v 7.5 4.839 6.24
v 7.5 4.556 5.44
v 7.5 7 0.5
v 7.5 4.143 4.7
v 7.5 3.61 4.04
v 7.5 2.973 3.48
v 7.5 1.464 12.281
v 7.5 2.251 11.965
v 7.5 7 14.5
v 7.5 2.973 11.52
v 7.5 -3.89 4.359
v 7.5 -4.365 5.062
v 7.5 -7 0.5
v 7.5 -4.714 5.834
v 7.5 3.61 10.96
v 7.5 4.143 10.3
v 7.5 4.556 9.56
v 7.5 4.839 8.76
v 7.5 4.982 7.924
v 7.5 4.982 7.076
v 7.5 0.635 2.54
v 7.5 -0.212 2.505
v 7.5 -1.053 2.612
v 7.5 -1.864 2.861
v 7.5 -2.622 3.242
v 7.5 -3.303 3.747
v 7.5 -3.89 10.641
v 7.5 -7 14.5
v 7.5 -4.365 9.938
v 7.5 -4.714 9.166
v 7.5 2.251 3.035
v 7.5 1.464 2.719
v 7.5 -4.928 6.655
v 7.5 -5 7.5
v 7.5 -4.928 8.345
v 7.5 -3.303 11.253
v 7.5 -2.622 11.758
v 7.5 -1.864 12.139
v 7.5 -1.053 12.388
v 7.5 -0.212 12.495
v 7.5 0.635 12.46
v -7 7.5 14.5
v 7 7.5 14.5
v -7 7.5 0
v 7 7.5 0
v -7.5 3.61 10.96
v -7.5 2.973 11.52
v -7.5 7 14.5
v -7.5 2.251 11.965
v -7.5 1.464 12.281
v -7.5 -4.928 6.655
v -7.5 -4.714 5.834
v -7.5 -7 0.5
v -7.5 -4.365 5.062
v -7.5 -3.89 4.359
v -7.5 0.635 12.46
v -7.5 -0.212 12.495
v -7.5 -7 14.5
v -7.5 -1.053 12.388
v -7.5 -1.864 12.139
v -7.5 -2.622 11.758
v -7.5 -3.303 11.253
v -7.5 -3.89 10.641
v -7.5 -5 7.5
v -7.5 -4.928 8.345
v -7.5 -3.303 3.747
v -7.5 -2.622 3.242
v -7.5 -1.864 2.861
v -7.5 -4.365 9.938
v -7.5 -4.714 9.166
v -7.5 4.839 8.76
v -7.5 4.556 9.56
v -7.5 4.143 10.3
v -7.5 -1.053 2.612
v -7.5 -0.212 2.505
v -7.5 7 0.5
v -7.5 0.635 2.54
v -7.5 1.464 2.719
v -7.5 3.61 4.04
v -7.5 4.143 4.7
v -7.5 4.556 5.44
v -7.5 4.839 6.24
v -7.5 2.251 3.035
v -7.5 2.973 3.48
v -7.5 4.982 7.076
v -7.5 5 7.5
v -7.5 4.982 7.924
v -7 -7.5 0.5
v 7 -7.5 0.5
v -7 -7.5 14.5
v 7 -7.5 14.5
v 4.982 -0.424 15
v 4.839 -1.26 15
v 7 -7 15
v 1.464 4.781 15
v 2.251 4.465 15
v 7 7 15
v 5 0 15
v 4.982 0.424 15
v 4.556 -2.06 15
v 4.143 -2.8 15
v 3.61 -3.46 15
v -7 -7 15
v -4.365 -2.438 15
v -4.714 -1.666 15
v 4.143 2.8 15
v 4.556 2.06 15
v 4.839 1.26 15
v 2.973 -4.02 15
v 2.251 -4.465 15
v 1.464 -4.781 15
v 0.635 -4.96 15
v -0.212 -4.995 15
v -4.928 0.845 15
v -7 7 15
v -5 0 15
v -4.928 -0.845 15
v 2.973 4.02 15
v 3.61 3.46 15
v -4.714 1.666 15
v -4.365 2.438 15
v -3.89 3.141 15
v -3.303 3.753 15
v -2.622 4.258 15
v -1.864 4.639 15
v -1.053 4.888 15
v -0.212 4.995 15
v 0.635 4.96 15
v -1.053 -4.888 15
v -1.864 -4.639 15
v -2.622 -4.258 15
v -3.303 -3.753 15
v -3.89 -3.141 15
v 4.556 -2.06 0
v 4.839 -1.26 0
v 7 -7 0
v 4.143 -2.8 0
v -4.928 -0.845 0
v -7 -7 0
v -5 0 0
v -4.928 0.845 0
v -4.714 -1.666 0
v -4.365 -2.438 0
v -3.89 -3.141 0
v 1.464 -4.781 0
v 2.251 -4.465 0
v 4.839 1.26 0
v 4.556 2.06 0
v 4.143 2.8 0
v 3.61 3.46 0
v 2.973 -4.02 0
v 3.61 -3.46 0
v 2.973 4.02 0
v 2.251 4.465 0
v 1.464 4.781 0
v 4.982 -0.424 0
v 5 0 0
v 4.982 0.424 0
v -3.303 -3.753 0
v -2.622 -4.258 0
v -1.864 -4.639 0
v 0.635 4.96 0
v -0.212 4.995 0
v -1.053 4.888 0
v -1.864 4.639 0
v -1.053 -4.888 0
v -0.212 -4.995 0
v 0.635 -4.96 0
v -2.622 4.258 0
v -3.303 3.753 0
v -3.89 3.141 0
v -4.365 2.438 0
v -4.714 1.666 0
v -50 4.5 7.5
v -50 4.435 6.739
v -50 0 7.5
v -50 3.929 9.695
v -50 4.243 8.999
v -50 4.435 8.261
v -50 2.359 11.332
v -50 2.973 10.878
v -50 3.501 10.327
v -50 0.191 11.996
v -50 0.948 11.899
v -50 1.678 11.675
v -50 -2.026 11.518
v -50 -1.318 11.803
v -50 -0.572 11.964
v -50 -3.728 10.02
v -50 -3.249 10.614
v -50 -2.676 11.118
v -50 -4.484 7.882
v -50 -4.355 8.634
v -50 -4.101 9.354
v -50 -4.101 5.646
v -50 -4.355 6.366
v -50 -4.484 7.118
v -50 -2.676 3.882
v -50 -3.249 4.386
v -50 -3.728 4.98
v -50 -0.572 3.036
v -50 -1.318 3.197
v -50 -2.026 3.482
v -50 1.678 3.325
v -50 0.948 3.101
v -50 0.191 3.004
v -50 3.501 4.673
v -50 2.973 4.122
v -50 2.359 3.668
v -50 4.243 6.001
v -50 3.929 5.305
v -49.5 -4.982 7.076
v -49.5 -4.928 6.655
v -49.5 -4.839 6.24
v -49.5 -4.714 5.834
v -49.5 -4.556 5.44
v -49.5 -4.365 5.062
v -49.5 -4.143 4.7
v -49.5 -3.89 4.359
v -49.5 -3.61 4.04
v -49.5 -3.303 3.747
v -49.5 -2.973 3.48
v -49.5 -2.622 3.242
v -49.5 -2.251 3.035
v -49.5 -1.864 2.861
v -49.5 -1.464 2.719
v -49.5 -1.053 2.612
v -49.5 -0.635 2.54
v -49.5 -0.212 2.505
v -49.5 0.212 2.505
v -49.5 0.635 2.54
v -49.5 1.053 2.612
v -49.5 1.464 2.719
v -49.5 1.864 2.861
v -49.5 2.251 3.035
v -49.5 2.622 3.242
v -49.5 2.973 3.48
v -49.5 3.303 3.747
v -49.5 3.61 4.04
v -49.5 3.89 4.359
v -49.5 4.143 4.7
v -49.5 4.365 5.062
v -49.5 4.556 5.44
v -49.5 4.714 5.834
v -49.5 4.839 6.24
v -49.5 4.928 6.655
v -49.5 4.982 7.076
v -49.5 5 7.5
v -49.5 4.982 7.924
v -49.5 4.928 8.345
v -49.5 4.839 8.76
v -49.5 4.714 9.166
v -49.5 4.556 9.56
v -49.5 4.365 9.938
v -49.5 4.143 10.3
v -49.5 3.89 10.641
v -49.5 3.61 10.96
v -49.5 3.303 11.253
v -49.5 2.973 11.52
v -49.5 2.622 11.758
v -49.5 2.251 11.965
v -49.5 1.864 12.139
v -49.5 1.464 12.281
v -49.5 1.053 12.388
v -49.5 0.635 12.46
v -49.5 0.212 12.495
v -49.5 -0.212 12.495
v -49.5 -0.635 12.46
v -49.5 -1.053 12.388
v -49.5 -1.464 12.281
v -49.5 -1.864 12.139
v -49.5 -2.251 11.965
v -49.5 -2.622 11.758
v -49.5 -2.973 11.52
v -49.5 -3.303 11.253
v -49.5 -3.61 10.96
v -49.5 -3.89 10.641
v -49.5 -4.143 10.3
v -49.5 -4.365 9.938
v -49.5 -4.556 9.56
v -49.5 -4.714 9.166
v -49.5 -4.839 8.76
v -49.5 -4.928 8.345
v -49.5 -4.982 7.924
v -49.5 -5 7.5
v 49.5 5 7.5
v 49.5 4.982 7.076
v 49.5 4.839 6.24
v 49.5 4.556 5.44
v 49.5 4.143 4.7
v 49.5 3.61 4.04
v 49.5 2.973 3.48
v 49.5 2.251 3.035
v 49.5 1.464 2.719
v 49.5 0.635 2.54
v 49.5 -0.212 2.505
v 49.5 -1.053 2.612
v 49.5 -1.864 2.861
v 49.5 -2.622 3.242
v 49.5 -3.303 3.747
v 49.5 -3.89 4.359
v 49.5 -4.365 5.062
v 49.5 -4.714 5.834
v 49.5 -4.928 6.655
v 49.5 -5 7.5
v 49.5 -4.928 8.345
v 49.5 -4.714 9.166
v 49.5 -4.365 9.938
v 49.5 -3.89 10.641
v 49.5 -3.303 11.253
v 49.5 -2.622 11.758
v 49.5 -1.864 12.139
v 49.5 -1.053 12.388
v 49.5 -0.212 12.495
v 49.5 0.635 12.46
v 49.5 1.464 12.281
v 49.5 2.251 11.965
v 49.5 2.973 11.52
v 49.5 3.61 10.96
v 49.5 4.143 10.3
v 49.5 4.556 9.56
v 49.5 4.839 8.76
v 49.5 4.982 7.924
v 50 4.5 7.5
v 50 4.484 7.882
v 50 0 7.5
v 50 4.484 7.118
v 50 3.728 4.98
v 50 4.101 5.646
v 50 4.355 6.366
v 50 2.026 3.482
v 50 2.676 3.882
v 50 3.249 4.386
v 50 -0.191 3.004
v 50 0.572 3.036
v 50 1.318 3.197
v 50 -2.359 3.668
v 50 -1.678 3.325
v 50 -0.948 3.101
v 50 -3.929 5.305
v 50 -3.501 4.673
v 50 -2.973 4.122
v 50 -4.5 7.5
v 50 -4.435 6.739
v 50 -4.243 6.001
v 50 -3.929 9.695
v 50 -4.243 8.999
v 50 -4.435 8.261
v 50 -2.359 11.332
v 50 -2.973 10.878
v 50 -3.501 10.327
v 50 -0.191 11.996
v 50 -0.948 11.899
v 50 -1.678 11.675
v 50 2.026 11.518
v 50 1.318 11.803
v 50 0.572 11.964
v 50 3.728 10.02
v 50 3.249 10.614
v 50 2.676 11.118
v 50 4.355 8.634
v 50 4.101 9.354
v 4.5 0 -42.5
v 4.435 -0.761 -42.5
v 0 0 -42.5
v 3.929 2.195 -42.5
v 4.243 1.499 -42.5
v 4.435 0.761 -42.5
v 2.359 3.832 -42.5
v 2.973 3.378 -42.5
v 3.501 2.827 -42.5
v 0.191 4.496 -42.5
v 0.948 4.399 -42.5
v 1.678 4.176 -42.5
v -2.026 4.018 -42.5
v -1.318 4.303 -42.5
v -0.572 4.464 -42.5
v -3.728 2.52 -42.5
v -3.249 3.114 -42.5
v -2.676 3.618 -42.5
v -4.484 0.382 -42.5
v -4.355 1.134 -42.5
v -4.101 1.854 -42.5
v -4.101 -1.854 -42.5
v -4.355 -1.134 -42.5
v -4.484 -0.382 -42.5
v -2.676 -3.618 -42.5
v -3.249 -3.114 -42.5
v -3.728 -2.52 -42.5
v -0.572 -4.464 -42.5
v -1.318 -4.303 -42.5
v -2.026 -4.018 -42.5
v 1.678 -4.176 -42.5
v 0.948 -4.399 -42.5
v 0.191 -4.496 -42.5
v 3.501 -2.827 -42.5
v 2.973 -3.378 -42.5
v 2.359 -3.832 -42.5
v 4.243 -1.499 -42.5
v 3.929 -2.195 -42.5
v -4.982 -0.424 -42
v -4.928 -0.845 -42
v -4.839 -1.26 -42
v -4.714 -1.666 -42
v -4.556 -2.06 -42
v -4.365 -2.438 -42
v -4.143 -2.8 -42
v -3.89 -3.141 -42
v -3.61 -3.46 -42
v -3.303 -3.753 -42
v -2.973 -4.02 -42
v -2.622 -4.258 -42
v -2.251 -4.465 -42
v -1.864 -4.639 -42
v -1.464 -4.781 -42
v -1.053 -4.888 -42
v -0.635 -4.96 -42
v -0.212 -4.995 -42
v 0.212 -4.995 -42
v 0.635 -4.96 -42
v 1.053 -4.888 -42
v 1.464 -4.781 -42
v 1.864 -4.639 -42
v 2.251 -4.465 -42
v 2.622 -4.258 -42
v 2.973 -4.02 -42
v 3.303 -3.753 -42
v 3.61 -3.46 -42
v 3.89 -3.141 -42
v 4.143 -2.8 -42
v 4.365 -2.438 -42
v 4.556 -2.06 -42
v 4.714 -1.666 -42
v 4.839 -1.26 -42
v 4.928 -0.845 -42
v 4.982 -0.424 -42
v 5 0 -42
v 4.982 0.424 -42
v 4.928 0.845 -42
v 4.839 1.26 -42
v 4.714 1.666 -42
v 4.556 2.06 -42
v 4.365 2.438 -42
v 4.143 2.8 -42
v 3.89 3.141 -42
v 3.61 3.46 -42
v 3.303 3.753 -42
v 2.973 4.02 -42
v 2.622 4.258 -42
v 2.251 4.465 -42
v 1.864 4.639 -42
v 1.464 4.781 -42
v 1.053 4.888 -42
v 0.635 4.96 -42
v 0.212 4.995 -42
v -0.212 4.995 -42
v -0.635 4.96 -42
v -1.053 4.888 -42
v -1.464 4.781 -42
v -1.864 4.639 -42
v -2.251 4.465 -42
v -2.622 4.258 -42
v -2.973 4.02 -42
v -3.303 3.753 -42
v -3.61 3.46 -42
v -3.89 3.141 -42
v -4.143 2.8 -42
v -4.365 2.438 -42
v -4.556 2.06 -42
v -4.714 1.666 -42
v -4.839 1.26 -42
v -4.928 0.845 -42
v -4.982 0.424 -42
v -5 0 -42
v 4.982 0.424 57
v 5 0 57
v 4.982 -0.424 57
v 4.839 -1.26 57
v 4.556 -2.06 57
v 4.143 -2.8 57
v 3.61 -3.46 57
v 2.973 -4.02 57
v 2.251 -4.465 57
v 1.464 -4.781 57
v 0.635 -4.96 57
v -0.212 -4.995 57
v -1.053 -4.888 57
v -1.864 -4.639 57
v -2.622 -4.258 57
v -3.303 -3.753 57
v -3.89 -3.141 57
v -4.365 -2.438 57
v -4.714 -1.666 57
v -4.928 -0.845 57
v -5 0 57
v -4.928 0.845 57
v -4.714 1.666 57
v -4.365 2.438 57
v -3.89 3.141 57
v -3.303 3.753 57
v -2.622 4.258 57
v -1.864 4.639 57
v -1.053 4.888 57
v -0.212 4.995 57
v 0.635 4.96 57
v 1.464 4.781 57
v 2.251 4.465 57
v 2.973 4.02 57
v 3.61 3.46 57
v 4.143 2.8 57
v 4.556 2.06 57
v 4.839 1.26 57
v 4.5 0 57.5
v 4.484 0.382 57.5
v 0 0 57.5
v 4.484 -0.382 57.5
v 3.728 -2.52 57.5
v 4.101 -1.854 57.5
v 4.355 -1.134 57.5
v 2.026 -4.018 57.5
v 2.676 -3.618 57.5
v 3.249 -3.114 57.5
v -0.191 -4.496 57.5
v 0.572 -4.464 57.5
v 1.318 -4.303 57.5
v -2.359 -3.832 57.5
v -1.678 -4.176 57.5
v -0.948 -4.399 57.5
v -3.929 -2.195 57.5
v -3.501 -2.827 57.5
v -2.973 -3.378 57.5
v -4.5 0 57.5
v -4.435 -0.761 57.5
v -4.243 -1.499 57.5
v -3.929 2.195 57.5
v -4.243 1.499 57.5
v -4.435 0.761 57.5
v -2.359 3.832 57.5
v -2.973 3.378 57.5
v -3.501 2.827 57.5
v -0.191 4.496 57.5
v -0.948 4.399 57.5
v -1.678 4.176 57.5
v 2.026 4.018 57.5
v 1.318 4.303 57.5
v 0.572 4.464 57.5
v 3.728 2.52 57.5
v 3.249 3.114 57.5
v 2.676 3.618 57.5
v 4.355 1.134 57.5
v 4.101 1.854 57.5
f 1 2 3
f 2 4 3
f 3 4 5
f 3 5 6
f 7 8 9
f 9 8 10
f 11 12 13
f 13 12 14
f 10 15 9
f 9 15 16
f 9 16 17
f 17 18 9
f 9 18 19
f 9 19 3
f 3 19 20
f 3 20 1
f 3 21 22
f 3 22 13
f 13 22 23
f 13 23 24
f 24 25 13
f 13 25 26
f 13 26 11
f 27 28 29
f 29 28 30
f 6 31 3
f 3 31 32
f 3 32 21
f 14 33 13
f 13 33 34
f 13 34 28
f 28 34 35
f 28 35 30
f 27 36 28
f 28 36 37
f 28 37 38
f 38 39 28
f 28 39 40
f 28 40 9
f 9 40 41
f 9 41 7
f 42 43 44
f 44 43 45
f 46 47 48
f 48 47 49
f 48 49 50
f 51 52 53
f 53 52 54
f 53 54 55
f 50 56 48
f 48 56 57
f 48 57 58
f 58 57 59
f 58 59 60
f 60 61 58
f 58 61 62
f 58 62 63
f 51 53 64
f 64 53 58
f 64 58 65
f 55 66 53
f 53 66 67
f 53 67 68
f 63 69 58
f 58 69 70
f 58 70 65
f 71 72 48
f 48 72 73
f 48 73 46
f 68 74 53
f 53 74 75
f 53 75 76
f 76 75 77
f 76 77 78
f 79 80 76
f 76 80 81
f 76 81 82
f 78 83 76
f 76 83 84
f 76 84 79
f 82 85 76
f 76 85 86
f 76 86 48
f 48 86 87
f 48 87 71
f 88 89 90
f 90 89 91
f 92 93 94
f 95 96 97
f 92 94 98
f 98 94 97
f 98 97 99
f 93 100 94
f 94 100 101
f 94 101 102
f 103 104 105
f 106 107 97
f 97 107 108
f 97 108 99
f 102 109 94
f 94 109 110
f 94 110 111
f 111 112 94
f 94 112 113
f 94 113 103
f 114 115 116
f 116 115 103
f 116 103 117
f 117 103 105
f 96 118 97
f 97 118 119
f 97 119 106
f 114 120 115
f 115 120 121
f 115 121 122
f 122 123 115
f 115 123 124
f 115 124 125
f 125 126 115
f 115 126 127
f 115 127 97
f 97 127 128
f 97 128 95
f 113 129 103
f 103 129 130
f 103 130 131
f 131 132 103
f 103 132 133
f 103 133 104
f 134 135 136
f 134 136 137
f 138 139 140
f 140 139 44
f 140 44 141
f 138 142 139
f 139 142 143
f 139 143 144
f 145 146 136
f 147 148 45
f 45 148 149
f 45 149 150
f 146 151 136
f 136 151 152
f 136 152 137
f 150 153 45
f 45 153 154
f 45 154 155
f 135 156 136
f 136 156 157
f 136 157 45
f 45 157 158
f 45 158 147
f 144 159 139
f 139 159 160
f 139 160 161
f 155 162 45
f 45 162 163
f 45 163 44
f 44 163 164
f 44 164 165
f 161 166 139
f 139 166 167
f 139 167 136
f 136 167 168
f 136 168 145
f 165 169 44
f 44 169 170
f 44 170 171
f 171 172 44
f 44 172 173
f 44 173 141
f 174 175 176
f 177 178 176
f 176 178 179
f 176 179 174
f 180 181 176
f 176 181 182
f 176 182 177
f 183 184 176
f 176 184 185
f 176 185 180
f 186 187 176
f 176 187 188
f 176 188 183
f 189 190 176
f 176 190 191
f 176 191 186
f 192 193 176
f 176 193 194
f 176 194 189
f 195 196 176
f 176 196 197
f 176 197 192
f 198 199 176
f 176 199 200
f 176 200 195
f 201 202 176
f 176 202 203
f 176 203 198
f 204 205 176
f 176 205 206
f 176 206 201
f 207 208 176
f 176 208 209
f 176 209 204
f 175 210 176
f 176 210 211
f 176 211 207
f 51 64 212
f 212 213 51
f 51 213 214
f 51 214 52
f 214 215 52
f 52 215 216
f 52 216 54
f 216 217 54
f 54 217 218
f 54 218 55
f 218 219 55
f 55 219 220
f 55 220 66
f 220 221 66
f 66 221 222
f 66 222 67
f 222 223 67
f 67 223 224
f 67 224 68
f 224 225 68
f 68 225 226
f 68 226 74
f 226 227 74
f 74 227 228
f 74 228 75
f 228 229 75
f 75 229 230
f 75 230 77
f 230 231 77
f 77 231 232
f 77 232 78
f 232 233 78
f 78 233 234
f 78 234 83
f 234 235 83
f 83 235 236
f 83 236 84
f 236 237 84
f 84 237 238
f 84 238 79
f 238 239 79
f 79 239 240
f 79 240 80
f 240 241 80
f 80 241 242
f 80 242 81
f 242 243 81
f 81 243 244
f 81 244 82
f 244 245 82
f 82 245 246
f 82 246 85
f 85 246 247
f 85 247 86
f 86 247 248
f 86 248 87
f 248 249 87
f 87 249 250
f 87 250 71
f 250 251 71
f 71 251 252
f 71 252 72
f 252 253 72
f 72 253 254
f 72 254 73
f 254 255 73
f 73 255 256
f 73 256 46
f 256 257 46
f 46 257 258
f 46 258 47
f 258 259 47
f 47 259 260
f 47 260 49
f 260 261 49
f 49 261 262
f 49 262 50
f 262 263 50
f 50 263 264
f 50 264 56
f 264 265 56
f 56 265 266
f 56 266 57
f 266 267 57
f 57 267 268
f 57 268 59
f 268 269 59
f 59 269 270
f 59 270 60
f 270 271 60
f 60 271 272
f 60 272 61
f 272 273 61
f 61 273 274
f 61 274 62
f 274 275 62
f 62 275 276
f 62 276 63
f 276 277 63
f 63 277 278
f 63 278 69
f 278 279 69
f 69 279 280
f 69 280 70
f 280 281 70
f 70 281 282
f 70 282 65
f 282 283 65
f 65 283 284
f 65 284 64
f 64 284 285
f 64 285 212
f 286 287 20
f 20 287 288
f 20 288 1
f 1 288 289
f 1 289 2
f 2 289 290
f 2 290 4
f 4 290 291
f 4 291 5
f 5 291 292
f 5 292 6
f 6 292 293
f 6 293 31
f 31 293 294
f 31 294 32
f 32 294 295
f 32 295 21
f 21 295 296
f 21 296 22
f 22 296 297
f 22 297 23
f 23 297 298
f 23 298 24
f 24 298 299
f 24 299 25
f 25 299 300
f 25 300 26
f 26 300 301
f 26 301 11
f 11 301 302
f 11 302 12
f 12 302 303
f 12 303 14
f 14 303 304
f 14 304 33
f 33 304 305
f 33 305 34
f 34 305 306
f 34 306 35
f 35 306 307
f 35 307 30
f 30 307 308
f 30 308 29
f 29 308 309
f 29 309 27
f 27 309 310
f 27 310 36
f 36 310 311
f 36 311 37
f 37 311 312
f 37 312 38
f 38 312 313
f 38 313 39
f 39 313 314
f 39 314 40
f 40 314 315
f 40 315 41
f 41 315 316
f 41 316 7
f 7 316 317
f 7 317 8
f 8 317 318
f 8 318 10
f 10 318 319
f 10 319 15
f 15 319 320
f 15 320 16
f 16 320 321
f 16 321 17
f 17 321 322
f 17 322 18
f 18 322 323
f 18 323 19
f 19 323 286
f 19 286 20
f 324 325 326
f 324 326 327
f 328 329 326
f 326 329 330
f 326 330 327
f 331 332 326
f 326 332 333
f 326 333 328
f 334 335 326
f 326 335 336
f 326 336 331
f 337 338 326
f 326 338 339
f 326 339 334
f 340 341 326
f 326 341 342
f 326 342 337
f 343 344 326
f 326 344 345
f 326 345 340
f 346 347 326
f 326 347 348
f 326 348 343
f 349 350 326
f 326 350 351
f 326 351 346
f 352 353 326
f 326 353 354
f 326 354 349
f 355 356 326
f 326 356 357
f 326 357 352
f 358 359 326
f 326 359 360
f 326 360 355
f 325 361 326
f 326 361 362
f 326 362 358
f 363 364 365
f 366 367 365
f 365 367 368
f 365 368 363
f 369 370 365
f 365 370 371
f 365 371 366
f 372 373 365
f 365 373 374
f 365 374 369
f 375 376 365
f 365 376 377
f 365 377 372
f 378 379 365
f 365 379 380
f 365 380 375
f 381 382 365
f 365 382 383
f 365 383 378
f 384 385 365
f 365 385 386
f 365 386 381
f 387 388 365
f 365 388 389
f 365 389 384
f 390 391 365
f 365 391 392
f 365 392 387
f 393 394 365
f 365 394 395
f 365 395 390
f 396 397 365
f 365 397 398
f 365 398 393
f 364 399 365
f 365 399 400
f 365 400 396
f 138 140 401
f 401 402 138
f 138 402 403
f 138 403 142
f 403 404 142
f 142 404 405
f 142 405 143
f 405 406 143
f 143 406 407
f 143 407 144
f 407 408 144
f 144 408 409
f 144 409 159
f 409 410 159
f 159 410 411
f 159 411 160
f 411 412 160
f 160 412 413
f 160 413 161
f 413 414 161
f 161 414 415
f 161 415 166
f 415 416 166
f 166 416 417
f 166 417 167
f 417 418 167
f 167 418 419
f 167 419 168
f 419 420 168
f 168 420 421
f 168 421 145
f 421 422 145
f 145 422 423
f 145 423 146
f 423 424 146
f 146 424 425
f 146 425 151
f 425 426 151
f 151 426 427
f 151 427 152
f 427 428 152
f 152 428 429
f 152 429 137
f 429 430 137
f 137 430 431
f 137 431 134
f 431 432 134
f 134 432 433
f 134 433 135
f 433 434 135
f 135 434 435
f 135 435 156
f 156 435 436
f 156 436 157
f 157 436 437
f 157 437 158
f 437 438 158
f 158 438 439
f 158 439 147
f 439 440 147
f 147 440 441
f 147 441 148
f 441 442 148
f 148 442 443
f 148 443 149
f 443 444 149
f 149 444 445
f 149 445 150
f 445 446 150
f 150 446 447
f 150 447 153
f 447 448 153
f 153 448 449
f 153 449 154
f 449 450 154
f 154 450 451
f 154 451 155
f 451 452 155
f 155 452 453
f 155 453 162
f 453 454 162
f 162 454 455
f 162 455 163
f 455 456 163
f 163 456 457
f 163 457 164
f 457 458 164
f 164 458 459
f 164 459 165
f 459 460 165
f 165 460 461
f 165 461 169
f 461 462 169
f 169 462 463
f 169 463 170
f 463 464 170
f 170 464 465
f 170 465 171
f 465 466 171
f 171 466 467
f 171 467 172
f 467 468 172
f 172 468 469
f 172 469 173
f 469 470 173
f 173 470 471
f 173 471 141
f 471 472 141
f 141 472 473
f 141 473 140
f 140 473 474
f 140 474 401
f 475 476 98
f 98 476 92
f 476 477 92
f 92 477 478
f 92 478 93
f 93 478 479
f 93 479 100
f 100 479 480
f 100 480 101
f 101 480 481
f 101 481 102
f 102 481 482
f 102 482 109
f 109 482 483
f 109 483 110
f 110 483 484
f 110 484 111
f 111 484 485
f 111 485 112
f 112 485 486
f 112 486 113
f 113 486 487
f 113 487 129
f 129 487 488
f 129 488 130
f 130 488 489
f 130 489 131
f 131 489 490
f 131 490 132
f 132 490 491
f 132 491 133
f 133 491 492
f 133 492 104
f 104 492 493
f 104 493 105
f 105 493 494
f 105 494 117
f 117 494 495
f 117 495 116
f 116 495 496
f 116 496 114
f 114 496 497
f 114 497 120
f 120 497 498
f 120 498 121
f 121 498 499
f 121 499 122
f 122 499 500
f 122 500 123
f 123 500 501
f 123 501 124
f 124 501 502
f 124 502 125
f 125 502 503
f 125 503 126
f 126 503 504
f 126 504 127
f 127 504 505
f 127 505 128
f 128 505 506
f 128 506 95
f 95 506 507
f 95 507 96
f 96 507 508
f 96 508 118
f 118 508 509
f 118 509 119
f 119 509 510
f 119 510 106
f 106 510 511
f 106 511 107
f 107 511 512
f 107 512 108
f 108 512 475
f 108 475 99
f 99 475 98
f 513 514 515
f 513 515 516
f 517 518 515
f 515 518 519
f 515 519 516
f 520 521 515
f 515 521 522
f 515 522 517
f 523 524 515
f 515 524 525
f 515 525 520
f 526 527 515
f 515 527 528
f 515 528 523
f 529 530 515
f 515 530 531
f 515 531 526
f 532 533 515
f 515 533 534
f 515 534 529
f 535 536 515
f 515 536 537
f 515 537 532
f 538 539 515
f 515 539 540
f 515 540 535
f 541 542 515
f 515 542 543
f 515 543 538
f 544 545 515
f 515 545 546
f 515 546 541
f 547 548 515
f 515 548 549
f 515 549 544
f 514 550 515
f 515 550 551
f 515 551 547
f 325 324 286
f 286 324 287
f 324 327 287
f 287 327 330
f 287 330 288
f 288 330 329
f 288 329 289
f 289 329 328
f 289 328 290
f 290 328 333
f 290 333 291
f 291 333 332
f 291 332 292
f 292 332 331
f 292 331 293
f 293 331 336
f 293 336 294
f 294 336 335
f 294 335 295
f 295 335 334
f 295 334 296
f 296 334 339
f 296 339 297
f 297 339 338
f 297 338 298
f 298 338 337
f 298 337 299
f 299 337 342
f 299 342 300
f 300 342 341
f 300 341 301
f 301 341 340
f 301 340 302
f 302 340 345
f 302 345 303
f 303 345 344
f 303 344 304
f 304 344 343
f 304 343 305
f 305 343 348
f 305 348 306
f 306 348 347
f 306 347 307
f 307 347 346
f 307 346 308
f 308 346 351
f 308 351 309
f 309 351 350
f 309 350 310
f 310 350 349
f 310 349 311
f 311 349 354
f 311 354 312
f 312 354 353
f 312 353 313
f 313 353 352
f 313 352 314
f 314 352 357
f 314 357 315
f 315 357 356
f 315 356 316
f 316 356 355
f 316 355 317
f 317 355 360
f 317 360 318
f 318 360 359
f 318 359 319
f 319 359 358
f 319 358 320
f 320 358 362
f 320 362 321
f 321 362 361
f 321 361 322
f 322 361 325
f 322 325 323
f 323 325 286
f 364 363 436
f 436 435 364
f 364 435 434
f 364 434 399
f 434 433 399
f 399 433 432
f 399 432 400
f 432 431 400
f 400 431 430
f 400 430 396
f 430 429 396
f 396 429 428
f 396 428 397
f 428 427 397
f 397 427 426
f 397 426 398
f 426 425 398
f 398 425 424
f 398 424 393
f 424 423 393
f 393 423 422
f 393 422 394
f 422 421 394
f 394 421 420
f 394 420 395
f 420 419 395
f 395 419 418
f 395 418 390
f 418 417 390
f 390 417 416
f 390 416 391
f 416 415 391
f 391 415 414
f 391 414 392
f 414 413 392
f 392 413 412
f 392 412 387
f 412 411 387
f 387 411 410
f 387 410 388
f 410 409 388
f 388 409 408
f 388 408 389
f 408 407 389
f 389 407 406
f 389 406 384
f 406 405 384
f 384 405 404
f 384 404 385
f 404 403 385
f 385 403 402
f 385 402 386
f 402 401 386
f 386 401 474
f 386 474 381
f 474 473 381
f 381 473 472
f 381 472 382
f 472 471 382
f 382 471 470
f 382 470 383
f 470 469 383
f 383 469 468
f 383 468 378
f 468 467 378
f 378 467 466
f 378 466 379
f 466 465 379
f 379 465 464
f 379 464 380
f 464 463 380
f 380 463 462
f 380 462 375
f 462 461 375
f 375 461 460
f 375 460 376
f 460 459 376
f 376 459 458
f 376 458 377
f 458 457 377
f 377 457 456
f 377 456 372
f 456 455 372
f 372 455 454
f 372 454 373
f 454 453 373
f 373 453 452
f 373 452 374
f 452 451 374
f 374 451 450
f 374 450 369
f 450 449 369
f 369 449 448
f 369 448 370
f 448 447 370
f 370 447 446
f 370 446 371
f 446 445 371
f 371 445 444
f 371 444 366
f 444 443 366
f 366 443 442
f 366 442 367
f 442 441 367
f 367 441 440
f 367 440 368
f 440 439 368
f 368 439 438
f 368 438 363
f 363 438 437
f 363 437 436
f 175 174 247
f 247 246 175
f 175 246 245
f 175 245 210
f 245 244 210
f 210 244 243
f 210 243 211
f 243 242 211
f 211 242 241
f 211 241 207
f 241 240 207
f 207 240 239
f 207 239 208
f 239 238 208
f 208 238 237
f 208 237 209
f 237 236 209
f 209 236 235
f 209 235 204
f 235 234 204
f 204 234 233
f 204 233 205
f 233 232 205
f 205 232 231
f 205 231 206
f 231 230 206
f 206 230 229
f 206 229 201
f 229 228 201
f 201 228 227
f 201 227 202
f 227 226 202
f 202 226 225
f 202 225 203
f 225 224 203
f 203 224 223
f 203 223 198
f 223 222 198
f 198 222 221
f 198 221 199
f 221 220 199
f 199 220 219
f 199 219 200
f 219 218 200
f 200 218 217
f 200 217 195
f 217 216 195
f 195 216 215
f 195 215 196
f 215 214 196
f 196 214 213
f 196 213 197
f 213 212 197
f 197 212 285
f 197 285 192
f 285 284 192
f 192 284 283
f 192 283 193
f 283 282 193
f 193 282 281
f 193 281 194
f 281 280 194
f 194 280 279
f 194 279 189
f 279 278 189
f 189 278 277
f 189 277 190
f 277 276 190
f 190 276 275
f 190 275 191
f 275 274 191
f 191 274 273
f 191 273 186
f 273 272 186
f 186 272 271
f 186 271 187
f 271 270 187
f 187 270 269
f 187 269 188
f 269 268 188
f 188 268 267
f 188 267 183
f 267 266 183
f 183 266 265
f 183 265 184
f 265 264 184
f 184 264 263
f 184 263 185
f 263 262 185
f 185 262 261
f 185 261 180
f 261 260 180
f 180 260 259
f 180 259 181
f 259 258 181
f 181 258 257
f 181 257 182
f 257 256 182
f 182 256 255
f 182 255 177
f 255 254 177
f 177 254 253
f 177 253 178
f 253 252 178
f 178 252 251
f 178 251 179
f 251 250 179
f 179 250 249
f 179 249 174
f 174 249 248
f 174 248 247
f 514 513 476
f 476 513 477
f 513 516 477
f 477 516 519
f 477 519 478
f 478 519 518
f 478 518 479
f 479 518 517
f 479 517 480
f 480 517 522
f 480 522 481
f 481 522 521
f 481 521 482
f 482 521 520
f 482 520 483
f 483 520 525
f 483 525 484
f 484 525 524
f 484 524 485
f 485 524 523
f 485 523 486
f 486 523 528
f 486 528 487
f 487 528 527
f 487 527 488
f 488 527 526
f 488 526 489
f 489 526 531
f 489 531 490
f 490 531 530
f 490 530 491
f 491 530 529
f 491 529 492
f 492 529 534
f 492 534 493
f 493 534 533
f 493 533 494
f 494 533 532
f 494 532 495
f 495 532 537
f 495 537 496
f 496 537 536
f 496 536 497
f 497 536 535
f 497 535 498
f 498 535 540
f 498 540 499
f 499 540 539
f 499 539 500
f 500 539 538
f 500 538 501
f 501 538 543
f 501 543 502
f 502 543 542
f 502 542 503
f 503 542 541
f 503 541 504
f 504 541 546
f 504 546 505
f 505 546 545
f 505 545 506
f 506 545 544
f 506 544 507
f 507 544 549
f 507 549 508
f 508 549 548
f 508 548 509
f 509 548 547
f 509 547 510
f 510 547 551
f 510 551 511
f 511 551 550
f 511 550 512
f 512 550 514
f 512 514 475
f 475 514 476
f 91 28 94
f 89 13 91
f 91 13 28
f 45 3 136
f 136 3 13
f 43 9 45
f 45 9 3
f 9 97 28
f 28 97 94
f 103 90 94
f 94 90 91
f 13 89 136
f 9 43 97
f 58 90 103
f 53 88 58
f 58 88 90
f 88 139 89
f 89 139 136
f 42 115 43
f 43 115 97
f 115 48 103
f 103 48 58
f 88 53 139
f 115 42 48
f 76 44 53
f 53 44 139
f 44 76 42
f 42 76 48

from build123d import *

# Parameters (mm, degrees)
SKETCH1_W           = 15
SKETCH1_H           = 15
BOSS_EXTRUDE1_DEPTH = 15
BOSS_EXTRUDE2_START = -7.5
SKETCH3_R           = 5
BOSS_EXTRUDE2_DEPTH = 50
BOSS_EXTRUDE3_START = -7.5
SKETCH4_R           = 5
BOSS_EXTRUDE3_DEPTH = 50
CHAMFER1_SIZE       = 0.5


with BuildPart() as part:
    # Sketch1 → Boss-Extrude1 (new body)
    with BuildSketch(Plane.XY):
        Rectangle(SKETCH1_W, SKETCH1_H)
    extrude(amount=BOSS_EXTRUDE1_DEPTH)

    # Sketch3 → Boss-Extrude2 (add, symmetric)
    with BuildSketch(Plane(origin=(7.5, 0, 0), x_dir=(0, 0, -1), z_dir=(1, 0, 0)).offset(BOSS_EXTRUDE2_START)):
        with Locations(Location((-7.5, 0, 0), (0, 0, 90))):
            Circle(SKETCH3_R)
    extrude(amount=BOSS_EXTRUDE2_DEPTH, both=True)

    # Sketch4 → Boss-Extrude3 (add, symmetric)
    with BuildSketch(Plane.XY.offset(15).offset(BOSS_EXTRUDE3_START)):
        Circle(SKETCH4_R)
    extrude(amount=BOSS_EXTRUDE3_DEPTH, both=True)

    # Chamfer1
    chamfer1_edges = [part.edges().sort_by_distance(p)[0] for p in [
        (-7.5, 0, 15),
        (-50, -5, 7.5),
        (50, -5, 7.5),
        (0, -7.5, 15),
        (-5, 0, -42.5),
        (-5, 0, 57.5),
        (7.5, 0, 15),
        (0, -7.5, 0),
        (-7.5, 0, 0),
        (7.5, 0, 0),
        (7.5, -7.5, 7.5),
        (-7.5, -7.5, 7.5),
        (-7.5, 7.5, 7.5),
        (7.5, 7.5, 7.5),
        (0, 7.5, 15),
    ]]
    chamfer(chamfer1_edges, length=CHAMFER1_SIZE)


solid = part.part
